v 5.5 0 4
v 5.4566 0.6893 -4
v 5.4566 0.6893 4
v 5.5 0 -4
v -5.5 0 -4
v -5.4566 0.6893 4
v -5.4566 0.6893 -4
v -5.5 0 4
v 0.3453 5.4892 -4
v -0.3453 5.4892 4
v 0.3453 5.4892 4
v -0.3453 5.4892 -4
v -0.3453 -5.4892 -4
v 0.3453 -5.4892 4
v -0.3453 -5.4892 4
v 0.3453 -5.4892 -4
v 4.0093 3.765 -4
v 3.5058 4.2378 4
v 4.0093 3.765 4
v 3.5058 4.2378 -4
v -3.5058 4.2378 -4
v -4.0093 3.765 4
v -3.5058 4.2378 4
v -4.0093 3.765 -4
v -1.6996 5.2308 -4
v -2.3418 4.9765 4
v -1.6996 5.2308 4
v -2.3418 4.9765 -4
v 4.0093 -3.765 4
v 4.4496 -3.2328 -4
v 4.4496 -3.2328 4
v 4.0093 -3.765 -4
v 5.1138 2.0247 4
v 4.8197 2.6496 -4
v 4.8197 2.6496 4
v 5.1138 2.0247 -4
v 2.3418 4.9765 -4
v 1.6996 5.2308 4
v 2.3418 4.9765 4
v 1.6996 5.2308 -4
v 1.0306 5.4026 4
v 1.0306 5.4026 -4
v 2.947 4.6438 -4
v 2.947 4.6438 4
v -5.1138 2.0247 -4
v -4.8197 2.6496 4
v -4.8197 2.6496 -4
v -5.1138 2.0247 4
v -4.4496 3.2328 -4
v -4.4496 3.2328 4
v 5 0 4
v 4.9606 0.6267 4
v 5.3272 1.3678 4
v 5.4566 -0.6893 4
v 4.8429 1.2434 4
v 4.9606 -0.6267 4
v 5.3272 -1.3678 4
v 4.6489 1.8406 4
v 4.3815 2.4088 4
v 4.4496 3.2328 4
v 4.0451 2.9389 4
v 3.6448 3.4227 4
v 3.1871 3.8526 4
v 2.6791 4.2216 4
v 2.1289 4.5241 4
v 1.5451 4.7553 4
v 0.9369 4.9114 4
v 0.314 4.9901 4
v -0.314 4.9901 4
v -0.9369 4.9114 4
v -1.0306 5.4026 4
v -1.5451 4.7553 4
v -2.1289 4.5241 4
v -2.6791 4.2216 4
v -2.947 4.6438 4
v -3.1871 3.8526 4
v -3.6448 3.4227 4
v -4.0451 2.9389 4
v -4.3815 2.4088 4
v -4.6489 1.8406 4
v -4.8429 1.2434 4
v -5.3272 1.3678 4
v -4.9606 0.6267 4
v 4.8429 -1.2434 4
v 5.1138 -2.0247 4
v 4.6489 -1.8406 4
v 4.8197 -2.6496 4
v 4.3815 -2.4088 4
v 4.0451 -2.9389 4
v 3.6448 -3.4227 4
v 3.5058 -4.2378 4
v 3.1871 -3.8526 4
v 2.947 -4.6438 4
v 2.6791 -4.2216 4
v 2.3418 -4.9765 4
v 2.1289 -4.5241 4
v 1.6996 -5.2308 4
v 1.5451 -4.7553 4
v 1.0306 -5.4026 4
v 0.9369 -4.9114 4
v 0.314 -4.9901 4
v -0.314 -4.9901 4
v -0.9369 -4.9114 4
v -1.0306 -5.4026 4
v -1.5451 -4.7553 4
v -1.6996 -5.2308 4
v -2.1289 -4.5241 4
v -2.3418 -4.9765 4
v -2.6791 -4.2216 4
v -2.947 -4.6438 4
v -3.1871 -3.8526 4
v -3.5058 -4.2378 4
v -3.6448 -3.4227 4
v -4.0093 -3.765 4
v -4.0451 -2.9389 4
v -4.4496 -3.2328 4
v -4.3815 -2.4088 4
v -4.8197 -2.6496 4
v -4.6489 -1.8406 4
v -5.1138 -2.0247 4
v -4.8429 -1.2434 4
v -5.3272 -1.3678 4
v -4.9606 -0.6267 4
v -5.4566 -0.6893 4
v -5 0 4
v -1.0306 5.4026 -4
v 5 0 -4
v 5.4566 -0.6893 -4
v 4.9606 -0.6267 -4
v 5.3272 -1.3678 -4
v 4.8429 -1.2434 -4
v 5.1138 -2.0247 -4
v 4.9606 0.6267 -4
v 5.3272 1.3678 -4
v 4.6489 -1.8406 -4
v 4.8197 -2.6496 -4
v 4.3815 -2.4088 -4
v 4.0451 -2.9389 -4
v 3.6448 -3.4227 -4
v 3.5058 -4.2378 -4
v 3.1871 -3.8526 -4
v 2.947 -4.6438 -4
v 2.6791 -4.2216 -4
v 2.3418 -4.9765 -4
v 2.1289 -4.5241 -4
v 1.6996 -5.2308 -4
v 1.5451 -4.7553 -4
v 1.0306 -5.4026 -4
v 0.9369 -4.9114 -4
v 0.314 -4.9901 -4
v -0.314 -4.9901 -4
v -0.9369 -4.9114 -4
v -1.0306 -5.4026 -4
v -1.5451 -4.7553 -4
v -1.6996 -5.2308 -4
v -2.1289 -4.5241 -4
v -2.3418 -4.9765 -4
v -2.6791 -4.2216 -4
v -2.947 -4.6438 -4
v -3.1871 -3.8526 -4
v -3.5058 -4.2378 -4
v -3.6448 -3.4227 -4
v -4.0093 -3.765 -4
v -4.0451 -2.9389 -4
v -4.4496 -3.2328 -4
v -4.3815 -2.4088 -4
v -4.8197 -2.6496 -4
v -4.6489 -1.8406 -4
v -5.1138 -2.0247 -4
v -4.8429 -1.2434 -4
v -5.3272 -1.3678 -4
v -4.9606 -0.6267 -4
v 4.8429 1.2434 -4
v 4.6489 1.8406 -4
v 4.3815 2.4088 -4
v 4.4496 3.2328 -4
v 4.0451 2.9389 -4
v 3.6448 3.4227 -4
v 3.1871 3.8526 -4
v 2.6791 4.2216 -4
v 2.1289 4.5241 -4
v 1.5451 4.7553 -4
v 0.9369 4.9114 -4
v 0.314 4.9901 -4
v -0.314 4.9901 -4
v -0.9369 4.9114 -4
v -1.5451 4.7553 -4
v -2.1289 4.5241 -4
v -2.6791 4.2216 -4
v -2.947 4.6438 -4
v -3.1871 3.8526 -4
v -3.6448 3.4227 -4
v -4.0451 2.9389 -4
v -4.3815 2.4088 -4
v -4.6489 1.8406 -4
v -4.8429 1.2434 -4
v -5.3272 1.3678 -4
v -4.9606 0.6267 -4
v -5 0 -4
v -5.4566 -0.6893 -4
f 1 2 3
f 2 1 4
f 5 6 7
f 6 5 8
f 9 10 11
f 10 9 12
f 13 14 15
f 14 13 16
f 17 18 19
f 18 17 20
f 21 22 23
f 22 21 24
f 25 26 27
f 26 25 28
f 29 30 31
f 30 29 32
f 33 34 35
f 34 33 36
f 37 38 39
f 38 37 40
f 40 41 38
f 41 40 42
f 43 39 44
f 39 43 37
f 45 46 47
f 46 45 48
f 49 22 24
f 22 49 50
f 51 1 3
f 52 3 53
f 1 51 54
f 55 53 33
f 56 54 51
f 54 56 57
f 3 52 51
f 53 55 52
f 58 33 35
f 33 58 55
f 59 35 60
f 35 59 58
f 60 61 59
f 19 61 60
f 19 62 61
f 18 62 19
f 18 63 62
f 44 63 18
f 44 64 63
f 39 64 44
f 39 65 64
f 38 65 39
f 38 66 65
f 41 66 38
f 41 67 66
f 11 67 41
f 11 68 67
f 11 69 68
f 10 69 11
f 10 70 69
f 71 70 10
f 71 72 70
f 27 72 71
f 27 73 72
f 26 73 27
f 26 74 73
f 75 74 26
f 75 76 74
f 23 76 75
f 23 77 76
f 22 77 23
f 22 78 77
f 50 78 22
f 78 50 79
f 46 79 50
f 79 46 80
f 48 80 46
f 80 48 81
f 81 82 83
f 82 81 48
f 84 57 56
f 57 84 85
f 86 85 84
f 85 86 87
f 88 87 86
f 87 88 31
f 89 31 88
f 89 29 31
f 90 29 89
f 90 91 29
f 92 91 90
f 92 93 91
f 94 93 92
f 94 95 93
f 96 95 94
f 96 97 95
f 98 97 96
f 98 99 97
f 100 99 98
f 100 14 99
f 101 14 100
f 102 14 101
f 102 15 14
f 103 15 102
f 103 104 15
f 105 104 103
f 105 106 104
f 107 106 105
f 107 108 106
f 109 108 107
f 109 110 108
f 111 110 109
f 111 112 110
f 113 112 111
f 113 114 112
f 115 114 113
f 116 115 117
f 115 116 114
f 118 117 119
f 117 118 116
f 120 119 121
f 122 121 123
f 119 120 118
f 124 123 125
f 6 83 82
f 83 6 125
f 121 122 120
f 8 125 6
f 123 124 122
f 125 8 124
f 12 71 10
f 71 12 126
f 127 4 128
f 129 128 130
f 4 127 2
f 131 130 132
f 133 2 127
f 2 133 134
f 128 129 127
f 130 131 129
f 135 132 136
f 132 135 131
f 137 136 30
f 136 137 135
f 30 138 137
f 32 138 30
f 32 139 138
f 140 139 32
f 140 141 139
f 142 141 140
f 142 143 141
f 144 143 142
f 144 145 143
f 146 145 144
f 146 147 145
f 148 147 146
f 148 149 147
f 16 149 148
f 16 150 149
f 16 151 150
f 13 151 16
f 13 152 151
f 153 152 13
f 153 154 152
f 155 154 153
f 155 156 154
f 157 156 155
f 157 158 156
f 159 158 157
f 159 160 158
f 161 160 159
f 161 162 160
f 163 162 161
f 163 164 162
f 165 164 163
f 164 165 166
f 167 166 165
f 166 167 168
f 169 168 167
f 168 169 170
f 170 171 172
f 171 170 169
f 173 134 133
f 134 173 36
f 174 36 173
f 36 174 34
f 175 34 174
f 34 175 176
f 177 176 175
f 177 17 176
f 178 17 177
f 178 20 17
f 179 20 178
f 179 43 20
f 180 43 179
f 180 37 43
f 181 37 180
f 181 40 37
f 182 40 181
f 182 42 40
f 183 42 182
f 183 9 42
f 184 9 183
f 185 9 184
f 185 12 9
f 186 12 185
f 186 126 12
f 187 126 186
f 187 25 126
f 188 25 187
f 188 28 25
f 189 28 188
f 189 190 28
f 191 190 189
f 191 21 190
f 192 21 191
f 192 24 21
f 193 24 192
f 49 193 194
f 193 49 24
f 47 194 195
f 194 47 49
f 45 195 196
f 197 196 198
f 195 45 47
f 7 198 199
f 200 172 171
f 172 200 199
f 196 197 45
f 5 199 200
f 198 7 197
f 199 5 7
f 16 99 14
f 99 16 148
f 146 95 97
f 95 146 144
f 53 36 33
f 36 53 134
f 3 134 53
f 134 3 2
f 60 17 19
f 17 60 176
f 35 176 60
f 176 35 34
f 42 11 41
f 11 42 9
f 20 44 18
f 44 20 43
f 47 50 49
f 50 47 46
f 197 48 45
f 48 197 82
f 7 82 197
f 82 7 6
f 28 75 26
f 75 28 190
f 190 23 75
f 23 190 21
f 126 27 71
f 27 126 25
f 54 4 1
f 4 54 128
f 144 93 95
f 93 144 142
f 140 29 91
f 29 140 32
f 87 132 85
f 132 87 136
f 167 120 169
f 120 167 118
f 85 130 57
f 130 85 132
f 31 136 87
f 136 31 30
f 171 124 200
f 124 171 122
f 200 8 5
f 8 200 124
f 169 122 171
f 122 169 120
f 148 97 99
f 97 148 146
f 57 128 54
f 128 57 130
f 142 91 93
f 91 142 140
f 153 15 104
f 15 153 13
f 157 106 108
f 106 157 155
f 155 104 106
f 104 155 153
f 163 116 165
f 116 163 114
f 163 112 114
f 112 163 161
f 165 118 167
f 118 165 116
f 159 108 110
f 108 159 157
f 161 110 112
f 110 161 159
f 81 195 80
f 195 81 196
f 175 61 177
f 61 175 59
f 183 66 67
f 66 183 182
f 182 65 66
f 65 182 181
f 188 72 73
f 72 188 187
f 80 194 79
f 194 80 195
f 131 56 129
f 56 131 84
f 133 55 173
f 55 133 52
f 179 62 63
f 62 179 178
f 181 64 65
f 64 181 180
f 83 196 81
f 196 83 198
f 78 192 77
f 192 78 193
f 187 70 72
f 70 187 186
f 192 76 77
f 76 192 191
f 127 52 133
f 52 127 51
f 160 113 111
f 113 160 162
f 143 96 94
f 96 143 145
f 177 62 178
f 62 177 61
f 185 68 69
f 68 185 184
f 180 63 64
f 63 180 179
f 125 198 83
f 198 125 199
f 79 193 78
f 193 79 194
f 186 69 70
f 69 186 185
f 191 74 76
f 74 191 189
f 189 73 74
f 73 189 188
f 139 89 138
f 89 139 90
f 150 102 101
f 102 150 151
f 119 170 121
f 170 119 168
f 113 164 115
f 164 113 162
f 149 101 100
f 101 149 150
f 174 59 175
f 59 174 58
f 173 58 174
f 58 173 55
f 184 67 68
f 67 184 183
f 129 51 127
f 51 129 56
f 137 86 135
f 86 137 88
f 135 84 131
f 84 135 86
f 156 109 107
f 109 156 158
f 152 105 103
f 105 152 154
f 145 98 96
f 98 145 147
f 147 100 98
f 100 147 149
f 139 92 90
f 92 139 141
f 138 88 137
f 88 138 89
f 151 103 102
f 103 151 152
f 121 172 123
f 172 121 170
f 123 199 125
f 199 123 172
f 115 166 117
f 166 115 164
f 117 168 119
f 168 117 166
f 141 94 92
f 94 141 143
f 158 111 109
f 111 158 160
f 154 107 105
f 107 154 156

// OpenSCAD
$fn = 50;


difference() {
	union() {
		translate(v = [0, 0, -4.0000000000]) {
			cylinder(h = 8, r = 5.5000000000);
		}
	}
	union() {
		translate(v = [0, 0, -100.0000000000]) {
			cylinder(h = 200, r = 5.0000000000);
		}
	}
}
